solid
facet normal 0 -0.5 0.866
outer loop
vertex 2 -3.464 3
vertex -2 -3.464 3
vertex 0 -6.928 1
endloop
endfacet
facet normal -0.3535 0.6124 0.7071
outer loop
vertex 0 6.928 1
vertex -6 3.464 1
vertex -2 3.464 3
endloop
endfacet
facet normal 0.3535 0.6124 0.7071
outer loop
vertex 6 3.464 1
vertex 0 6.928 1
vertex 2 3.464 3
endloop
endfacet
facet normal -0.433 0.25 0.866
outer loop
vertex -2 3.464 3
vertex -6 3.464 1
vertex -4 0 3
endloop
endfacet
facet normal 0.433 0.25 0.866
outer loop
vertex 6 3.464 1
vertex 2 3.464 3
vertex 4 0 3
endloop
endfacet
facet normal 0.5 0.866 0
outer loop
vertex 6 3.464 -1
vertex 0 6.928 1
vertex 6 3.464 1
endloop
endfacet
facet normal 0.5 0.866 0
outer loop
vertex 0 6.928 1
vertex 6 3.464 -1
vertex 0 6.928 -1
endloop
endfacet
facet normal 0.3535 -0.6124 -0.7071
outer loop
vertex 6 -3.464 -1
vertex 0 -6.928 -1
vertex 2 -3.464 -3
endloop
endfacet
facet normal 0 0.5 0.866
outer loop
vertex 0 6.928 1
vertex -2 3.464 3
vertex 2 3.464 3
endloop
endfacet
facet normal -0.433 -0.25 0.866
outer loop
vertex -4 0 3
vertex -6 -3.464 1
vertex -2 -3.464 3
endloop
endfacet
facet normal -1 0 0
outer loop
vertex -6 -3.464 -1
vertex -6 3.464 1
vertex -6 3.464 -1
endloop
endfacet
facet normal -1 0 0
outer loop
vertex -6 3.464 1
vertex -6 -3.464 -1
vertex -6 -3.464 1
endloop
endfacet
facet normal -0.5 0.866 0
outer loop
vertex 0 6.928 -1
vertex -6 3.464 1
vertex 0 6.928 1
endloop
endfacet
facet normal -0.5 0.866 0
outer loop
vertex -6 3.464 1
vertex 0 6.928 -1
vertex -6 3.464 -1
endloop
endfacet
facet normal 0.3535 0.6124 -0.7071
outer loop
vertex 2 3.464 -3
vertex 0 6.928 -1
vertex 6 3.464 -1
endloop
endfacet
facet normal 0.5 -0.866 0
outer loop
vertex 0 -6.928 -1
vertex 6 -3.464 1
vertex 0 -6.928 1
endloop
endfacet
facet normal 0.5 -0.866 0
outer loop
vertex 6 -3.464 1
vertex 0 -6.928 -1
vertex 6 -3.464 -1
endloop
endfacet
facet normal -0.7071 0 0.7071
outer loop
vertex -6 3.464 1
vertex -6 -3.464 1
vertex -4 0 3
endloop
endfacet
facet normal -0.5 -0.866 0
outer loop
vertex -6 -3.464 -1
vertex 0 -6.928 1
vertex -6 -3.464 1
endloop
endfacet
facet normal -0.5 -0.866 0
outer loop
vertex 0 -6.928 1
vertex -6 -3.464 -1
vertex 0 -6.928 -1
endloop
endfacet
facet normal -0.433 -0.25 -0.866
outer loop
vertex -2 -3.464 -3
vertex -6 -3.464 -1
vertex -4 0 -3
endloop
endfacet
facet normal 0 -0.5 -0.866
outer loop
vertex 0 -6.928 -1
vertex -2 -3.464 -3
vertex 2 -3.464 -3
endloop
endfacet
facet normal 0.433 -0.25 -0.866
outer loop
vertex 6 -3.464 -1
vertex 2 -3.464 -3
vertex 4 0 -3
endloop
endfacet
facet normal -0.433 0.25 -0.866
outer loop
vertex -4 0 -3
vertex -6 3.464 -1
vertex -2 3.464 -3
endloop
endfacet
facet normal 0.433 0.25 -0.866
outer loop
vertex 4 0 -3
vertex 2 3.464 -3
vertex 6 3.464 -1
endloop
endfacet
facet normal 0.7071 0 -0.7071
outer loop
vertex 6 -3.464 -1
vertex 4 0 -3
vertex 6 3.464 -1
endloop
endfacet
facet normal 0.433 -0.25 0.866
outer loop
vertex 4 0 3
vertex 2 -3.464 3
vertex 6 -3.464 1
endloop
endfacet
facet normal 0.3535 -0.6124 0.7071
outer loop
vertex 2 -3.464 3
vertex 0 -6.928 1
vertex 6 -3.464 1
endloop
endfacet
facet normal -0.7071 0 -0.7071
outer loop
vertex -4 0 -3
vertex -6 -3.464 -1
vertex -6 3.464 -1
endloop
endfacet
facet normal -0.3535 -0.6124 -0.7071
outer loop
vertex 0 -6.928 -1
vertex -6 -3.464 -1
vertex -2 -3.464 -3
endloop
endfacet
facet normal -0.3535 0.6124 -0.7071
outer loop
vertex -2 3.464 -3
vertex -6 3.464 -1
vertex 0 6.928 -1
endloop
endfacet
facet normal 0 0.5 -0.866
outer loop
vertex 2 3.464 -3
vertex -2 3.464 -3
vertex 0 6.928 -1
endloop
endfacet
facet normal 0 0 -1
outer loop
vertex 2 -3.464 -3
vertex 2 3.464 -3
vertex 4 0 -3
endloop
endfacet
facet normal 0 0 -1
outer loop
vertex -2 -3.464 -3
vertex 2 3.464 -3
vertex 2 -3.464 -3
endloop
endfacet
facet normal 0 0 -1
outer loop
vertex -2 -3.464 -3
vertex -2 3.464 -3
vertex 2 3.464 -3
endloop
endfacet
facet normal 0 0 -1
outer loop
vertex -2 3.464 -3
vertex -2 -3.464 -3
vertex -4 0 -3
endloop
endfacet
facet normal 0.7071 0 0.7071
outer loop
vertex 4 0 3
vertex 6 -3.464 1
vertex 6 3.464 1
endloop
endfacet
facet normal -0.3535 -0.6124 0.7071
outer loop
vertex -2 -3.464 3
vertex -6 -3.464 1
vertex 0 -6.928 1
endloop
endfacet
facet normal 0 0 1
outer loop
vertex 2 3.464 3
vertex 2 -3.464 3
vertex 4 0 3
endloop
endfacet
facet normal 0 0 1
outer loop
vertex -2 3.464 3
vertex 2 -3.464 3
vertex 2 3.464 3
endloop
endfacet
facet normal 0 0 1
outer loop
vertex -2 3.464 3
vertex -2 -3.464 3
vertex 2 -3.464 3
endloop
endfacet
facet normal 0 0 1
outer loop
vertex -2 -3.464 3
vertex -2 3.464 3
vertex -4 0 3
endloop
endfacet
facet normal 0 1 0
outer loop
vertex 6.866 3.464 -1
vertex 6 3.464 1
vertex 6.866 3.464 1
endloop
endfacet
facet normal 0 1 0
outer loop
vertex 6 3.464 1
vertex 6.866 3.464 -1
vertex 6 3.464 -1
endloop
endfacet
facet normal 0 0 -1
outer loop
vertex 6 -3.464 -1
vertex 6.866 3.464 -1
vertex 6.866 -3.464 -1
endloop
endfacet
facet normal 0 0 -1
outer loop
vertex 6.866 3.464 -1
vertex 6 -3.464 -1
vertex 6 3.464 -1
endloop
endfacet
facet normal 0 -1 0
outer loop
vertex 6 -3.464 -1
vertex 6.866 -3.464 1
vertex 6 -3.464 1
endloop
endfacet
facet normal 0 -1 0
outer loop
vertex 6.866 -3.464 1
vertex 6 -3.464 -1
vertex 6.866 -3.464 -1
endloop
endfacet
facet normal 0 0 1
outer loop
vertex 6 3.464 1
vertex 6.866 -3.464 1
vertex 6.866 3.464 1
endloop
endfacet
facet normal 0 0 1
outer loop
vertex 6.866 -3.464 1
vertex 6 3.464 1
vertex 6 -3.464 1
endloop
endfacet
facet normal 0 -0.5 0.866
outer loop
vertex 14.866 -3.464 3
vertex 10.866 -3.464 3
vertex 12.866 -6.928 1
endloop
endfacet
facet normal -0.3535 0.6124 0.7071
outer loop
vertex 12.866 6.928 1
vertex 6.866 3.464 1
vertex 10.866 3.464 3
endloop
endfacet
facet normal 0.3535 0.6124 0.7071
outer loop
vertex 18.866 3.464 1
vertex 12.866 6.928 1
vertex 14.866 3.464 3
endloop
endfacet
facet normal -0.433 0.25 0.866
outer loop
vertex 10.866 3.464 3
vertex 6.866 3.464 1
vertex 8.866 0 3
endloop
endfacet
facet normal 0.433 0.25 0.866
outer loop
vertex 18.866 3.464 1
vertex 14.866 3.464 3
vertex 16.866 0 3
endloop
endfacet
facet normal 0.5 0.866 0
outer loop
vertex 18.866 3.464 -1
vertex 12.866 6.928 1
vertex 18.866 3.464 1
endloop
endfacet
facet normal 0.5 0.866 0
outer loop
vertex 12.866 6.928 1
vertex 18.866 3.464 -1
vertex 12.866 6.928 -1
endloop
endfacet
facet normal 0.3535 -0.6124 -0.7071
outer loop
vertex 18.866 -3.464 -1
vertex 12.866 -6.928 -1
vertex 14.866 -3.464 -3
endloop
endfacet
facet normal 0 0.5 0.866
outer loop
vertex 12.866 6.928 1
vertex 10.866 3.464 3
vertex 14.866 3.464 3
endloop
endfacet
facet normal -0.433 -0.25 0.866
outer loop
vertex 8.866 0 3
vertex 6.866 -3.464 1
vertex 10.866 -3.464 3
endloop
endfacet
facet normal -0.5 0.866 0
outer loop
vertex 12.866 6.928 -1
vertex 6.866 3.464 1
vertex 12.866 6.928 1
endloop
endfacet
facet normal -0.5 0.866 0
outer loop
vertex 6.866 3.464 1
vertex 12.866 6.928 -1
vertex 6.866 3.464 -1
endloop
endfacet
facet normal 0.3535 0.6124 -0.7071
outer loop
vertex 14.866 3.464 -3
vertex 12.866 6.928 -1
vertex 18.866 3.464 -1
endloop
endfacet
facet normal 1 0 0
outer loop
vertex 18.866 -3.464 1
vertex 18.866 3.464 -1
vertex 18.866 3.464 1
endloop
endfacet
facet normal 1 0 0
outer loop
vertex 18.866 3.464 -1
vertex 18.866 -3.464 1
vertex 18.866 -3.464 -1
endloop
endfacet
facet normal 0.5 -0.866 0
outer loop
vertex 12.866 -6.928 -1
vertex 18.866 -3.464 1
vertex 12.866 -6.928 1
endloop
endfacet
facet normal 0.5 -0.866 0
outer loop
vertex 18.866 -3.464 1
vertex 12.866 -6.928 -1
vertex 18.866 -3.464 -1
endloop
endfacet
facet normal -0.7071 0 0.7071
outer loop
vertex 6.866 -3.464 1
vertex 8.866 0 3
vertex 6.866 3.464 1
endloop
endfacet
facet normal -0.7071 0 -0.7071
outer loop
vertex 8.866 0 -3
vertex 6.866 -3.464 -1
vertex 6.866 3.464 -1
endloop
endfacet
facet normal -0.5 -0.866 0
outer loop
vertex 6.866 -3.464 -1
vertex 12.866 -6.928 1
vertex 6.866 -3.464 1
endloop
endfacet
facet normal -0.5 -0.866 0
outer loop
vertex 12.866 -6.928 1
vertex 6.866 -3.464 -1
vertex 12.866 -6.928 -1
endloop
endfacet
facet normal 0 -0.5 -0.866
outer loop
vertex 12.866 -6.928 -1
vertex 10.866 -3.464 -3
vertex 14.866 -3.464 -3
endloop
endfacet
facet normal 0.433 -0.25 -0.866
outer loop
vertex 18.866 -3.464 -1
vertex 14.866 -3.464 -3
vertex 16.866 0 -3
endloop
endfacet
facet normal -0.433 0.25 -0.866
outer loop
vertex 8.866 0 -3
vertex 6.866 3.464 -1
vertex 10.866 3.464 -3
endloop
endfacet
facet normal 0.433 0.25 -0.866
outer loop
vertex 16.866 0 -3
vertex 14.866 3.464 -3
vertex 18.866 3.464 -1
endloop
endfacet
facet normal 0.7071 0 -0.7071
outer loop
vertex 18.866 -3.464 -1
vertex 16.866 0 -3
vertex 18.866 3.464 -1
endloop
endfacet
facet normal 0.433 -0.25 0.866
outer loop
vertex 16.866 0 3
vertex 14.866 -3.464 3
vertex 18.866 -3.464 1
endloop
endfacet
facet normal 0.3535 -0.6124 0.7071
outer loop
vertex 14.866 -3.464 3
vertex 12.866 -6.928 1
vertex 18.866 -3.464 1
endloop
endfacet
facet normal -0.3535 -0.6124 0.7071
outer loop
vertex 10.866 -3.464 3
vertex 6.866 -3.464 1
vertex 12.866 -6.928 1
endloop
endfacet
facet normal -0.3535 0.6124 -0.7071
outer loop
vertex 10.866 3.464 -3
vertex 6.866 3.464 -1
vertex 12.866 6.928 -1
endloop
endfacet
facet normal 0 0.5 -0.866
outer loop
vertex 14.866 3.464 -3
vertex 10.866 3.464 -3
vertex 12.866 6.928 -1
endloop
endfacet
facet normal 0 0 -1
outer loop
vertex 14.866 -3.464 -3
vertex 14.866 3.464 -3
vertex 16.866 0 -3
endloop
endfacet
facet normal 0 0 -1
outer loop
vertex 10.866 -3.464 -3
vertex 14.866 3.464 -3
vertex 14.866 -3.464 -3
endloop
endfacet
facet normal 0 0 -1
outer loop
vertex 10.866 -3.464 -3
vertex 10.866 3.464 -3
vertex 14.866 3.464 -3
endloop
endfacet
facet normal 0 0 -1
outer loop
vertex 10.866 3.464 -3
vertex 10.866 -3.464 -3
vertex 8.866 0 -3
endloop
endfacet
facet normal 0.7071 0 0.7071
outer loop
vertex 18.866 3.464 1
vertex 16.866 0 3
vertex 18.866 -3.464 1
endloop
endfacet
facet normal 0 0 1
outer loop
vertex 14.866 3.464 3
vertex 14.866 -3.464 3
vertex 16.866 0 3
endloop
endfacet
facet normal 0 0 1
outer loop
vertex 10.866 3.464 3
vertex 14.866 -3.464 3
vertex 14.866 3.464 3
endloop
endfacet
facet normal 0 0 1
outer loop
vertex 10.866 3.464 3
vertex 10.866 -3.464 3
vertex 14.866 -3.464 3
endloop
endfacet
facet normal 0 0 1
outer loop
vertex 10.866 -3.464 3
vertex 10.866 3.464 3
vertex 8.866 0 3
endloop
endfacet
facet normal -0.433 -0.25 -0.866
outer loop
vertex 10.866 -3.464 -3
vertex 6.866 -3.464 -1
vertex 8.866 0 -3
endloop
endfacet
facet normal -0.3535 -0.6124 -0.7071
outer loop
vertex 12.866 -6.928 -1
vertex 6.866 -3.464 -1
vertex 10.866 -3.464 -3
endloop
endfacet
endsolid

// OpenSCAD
// file: gem-common.scad
angles = [for(i = [0:5]) i * (360 / 6)];

inner_poly_radius=8 * cos(60);
outer_poly_radius=8 * cos(30);
outer_poly_z=1;
inner_poly_z=3;


gap_between_gems = cos(30);
distance_to_corner = cos(30) * outer_poly_radius * 2 + gap_between_gems;


module edge_connector(angle = 0) {
    function make_point_2d(r, angle, height) = [r * sin(angle), height];
    
    points = [
        make_point_2d(outer_poly_radius, 30, outer_poly_z),
        make_point_2d(outer_poly_radius, -30, outer_poly_z),
        make_point_2d(outer_poly_radius, -30, -outer_poly_z),
        make_point_2d(outer_poly_radius, 30, -outer_poly_z),
    ];
    
    rotate([0,0,angle]) {
        translate([(distance_to_corner - gap_between_gems) / 2,0,0]){
            rotate([90, 0, 90]) {
                linear_extrude(gap_between_gems) {
                    polygon(points);
                }
            }
        }
    }
}

module move(distance, angle) {
    translate([distance * cos(angle), distance * sin(angle), 0]) {
        children();
    }
}


module corner_connector(angle=0) {
    r = 0.5;
    rotate_angle = angle + 30;
    move(outer_poly_radius + r, rotate_angle) {
        translate([0,0, -outer_poly_z]) {
            rotate([0,0,-rotate_angle]) {
                cylinder($fn=3, r=r, h=outer_poly_z * 2);
            }
        }
    }
}

module gem() {
    function make_point(r, angle, height) = [r * cos(angle), r * sin(angle), height];
    
    top_poly = [for(th = angles) make_point(inner_poly_radius, th, inner_poly_z)];
    top_outer_poly = [for(th = angles) make_point(outer_poly_radius, th + 30, outer_poly_z)];
    bottom_outer_poly = [for(th = angles) make_point(outer_poly_radius, th + 30, -outer_poly_z)];
    bottom_poly = [for(th = angles) make_point(inner_poly_radius, th, -inner_poly_z)];
 
    function rot(n, base) = (n + 1 - base) % 6 + base;
    
    faces = [
        [5, 4, 3, 2, 1, 0],
        for(i = [0:5]) [i, (i + 1) % 6, i + 6],
        for(i = [6:11]) [i, (i - 5) % 6, rot(i, 6)],
        for(i = [6:11]) [i, rot(i, 6), rot(i, 6) + 6, i + 6],
        for(i = [12:17]) [i, rot(i, 12), rot(i, 12) + 6],
        for(i = [18:23]) [i, i-6, rot(i, 18)],
        [18, 19, 20, 21, 22, 23],
    ];
    
    polyhedron(
        concat(
            top_poly,
            top_outer_poly,
            bottom_outer_poly,
            bottom_poly
        ),
        faces
    );
}
// main file
include <./gem-common.scad>

gem();
edge_connector();
move(distance_to_corner, 0) {
    gem();
    
}
